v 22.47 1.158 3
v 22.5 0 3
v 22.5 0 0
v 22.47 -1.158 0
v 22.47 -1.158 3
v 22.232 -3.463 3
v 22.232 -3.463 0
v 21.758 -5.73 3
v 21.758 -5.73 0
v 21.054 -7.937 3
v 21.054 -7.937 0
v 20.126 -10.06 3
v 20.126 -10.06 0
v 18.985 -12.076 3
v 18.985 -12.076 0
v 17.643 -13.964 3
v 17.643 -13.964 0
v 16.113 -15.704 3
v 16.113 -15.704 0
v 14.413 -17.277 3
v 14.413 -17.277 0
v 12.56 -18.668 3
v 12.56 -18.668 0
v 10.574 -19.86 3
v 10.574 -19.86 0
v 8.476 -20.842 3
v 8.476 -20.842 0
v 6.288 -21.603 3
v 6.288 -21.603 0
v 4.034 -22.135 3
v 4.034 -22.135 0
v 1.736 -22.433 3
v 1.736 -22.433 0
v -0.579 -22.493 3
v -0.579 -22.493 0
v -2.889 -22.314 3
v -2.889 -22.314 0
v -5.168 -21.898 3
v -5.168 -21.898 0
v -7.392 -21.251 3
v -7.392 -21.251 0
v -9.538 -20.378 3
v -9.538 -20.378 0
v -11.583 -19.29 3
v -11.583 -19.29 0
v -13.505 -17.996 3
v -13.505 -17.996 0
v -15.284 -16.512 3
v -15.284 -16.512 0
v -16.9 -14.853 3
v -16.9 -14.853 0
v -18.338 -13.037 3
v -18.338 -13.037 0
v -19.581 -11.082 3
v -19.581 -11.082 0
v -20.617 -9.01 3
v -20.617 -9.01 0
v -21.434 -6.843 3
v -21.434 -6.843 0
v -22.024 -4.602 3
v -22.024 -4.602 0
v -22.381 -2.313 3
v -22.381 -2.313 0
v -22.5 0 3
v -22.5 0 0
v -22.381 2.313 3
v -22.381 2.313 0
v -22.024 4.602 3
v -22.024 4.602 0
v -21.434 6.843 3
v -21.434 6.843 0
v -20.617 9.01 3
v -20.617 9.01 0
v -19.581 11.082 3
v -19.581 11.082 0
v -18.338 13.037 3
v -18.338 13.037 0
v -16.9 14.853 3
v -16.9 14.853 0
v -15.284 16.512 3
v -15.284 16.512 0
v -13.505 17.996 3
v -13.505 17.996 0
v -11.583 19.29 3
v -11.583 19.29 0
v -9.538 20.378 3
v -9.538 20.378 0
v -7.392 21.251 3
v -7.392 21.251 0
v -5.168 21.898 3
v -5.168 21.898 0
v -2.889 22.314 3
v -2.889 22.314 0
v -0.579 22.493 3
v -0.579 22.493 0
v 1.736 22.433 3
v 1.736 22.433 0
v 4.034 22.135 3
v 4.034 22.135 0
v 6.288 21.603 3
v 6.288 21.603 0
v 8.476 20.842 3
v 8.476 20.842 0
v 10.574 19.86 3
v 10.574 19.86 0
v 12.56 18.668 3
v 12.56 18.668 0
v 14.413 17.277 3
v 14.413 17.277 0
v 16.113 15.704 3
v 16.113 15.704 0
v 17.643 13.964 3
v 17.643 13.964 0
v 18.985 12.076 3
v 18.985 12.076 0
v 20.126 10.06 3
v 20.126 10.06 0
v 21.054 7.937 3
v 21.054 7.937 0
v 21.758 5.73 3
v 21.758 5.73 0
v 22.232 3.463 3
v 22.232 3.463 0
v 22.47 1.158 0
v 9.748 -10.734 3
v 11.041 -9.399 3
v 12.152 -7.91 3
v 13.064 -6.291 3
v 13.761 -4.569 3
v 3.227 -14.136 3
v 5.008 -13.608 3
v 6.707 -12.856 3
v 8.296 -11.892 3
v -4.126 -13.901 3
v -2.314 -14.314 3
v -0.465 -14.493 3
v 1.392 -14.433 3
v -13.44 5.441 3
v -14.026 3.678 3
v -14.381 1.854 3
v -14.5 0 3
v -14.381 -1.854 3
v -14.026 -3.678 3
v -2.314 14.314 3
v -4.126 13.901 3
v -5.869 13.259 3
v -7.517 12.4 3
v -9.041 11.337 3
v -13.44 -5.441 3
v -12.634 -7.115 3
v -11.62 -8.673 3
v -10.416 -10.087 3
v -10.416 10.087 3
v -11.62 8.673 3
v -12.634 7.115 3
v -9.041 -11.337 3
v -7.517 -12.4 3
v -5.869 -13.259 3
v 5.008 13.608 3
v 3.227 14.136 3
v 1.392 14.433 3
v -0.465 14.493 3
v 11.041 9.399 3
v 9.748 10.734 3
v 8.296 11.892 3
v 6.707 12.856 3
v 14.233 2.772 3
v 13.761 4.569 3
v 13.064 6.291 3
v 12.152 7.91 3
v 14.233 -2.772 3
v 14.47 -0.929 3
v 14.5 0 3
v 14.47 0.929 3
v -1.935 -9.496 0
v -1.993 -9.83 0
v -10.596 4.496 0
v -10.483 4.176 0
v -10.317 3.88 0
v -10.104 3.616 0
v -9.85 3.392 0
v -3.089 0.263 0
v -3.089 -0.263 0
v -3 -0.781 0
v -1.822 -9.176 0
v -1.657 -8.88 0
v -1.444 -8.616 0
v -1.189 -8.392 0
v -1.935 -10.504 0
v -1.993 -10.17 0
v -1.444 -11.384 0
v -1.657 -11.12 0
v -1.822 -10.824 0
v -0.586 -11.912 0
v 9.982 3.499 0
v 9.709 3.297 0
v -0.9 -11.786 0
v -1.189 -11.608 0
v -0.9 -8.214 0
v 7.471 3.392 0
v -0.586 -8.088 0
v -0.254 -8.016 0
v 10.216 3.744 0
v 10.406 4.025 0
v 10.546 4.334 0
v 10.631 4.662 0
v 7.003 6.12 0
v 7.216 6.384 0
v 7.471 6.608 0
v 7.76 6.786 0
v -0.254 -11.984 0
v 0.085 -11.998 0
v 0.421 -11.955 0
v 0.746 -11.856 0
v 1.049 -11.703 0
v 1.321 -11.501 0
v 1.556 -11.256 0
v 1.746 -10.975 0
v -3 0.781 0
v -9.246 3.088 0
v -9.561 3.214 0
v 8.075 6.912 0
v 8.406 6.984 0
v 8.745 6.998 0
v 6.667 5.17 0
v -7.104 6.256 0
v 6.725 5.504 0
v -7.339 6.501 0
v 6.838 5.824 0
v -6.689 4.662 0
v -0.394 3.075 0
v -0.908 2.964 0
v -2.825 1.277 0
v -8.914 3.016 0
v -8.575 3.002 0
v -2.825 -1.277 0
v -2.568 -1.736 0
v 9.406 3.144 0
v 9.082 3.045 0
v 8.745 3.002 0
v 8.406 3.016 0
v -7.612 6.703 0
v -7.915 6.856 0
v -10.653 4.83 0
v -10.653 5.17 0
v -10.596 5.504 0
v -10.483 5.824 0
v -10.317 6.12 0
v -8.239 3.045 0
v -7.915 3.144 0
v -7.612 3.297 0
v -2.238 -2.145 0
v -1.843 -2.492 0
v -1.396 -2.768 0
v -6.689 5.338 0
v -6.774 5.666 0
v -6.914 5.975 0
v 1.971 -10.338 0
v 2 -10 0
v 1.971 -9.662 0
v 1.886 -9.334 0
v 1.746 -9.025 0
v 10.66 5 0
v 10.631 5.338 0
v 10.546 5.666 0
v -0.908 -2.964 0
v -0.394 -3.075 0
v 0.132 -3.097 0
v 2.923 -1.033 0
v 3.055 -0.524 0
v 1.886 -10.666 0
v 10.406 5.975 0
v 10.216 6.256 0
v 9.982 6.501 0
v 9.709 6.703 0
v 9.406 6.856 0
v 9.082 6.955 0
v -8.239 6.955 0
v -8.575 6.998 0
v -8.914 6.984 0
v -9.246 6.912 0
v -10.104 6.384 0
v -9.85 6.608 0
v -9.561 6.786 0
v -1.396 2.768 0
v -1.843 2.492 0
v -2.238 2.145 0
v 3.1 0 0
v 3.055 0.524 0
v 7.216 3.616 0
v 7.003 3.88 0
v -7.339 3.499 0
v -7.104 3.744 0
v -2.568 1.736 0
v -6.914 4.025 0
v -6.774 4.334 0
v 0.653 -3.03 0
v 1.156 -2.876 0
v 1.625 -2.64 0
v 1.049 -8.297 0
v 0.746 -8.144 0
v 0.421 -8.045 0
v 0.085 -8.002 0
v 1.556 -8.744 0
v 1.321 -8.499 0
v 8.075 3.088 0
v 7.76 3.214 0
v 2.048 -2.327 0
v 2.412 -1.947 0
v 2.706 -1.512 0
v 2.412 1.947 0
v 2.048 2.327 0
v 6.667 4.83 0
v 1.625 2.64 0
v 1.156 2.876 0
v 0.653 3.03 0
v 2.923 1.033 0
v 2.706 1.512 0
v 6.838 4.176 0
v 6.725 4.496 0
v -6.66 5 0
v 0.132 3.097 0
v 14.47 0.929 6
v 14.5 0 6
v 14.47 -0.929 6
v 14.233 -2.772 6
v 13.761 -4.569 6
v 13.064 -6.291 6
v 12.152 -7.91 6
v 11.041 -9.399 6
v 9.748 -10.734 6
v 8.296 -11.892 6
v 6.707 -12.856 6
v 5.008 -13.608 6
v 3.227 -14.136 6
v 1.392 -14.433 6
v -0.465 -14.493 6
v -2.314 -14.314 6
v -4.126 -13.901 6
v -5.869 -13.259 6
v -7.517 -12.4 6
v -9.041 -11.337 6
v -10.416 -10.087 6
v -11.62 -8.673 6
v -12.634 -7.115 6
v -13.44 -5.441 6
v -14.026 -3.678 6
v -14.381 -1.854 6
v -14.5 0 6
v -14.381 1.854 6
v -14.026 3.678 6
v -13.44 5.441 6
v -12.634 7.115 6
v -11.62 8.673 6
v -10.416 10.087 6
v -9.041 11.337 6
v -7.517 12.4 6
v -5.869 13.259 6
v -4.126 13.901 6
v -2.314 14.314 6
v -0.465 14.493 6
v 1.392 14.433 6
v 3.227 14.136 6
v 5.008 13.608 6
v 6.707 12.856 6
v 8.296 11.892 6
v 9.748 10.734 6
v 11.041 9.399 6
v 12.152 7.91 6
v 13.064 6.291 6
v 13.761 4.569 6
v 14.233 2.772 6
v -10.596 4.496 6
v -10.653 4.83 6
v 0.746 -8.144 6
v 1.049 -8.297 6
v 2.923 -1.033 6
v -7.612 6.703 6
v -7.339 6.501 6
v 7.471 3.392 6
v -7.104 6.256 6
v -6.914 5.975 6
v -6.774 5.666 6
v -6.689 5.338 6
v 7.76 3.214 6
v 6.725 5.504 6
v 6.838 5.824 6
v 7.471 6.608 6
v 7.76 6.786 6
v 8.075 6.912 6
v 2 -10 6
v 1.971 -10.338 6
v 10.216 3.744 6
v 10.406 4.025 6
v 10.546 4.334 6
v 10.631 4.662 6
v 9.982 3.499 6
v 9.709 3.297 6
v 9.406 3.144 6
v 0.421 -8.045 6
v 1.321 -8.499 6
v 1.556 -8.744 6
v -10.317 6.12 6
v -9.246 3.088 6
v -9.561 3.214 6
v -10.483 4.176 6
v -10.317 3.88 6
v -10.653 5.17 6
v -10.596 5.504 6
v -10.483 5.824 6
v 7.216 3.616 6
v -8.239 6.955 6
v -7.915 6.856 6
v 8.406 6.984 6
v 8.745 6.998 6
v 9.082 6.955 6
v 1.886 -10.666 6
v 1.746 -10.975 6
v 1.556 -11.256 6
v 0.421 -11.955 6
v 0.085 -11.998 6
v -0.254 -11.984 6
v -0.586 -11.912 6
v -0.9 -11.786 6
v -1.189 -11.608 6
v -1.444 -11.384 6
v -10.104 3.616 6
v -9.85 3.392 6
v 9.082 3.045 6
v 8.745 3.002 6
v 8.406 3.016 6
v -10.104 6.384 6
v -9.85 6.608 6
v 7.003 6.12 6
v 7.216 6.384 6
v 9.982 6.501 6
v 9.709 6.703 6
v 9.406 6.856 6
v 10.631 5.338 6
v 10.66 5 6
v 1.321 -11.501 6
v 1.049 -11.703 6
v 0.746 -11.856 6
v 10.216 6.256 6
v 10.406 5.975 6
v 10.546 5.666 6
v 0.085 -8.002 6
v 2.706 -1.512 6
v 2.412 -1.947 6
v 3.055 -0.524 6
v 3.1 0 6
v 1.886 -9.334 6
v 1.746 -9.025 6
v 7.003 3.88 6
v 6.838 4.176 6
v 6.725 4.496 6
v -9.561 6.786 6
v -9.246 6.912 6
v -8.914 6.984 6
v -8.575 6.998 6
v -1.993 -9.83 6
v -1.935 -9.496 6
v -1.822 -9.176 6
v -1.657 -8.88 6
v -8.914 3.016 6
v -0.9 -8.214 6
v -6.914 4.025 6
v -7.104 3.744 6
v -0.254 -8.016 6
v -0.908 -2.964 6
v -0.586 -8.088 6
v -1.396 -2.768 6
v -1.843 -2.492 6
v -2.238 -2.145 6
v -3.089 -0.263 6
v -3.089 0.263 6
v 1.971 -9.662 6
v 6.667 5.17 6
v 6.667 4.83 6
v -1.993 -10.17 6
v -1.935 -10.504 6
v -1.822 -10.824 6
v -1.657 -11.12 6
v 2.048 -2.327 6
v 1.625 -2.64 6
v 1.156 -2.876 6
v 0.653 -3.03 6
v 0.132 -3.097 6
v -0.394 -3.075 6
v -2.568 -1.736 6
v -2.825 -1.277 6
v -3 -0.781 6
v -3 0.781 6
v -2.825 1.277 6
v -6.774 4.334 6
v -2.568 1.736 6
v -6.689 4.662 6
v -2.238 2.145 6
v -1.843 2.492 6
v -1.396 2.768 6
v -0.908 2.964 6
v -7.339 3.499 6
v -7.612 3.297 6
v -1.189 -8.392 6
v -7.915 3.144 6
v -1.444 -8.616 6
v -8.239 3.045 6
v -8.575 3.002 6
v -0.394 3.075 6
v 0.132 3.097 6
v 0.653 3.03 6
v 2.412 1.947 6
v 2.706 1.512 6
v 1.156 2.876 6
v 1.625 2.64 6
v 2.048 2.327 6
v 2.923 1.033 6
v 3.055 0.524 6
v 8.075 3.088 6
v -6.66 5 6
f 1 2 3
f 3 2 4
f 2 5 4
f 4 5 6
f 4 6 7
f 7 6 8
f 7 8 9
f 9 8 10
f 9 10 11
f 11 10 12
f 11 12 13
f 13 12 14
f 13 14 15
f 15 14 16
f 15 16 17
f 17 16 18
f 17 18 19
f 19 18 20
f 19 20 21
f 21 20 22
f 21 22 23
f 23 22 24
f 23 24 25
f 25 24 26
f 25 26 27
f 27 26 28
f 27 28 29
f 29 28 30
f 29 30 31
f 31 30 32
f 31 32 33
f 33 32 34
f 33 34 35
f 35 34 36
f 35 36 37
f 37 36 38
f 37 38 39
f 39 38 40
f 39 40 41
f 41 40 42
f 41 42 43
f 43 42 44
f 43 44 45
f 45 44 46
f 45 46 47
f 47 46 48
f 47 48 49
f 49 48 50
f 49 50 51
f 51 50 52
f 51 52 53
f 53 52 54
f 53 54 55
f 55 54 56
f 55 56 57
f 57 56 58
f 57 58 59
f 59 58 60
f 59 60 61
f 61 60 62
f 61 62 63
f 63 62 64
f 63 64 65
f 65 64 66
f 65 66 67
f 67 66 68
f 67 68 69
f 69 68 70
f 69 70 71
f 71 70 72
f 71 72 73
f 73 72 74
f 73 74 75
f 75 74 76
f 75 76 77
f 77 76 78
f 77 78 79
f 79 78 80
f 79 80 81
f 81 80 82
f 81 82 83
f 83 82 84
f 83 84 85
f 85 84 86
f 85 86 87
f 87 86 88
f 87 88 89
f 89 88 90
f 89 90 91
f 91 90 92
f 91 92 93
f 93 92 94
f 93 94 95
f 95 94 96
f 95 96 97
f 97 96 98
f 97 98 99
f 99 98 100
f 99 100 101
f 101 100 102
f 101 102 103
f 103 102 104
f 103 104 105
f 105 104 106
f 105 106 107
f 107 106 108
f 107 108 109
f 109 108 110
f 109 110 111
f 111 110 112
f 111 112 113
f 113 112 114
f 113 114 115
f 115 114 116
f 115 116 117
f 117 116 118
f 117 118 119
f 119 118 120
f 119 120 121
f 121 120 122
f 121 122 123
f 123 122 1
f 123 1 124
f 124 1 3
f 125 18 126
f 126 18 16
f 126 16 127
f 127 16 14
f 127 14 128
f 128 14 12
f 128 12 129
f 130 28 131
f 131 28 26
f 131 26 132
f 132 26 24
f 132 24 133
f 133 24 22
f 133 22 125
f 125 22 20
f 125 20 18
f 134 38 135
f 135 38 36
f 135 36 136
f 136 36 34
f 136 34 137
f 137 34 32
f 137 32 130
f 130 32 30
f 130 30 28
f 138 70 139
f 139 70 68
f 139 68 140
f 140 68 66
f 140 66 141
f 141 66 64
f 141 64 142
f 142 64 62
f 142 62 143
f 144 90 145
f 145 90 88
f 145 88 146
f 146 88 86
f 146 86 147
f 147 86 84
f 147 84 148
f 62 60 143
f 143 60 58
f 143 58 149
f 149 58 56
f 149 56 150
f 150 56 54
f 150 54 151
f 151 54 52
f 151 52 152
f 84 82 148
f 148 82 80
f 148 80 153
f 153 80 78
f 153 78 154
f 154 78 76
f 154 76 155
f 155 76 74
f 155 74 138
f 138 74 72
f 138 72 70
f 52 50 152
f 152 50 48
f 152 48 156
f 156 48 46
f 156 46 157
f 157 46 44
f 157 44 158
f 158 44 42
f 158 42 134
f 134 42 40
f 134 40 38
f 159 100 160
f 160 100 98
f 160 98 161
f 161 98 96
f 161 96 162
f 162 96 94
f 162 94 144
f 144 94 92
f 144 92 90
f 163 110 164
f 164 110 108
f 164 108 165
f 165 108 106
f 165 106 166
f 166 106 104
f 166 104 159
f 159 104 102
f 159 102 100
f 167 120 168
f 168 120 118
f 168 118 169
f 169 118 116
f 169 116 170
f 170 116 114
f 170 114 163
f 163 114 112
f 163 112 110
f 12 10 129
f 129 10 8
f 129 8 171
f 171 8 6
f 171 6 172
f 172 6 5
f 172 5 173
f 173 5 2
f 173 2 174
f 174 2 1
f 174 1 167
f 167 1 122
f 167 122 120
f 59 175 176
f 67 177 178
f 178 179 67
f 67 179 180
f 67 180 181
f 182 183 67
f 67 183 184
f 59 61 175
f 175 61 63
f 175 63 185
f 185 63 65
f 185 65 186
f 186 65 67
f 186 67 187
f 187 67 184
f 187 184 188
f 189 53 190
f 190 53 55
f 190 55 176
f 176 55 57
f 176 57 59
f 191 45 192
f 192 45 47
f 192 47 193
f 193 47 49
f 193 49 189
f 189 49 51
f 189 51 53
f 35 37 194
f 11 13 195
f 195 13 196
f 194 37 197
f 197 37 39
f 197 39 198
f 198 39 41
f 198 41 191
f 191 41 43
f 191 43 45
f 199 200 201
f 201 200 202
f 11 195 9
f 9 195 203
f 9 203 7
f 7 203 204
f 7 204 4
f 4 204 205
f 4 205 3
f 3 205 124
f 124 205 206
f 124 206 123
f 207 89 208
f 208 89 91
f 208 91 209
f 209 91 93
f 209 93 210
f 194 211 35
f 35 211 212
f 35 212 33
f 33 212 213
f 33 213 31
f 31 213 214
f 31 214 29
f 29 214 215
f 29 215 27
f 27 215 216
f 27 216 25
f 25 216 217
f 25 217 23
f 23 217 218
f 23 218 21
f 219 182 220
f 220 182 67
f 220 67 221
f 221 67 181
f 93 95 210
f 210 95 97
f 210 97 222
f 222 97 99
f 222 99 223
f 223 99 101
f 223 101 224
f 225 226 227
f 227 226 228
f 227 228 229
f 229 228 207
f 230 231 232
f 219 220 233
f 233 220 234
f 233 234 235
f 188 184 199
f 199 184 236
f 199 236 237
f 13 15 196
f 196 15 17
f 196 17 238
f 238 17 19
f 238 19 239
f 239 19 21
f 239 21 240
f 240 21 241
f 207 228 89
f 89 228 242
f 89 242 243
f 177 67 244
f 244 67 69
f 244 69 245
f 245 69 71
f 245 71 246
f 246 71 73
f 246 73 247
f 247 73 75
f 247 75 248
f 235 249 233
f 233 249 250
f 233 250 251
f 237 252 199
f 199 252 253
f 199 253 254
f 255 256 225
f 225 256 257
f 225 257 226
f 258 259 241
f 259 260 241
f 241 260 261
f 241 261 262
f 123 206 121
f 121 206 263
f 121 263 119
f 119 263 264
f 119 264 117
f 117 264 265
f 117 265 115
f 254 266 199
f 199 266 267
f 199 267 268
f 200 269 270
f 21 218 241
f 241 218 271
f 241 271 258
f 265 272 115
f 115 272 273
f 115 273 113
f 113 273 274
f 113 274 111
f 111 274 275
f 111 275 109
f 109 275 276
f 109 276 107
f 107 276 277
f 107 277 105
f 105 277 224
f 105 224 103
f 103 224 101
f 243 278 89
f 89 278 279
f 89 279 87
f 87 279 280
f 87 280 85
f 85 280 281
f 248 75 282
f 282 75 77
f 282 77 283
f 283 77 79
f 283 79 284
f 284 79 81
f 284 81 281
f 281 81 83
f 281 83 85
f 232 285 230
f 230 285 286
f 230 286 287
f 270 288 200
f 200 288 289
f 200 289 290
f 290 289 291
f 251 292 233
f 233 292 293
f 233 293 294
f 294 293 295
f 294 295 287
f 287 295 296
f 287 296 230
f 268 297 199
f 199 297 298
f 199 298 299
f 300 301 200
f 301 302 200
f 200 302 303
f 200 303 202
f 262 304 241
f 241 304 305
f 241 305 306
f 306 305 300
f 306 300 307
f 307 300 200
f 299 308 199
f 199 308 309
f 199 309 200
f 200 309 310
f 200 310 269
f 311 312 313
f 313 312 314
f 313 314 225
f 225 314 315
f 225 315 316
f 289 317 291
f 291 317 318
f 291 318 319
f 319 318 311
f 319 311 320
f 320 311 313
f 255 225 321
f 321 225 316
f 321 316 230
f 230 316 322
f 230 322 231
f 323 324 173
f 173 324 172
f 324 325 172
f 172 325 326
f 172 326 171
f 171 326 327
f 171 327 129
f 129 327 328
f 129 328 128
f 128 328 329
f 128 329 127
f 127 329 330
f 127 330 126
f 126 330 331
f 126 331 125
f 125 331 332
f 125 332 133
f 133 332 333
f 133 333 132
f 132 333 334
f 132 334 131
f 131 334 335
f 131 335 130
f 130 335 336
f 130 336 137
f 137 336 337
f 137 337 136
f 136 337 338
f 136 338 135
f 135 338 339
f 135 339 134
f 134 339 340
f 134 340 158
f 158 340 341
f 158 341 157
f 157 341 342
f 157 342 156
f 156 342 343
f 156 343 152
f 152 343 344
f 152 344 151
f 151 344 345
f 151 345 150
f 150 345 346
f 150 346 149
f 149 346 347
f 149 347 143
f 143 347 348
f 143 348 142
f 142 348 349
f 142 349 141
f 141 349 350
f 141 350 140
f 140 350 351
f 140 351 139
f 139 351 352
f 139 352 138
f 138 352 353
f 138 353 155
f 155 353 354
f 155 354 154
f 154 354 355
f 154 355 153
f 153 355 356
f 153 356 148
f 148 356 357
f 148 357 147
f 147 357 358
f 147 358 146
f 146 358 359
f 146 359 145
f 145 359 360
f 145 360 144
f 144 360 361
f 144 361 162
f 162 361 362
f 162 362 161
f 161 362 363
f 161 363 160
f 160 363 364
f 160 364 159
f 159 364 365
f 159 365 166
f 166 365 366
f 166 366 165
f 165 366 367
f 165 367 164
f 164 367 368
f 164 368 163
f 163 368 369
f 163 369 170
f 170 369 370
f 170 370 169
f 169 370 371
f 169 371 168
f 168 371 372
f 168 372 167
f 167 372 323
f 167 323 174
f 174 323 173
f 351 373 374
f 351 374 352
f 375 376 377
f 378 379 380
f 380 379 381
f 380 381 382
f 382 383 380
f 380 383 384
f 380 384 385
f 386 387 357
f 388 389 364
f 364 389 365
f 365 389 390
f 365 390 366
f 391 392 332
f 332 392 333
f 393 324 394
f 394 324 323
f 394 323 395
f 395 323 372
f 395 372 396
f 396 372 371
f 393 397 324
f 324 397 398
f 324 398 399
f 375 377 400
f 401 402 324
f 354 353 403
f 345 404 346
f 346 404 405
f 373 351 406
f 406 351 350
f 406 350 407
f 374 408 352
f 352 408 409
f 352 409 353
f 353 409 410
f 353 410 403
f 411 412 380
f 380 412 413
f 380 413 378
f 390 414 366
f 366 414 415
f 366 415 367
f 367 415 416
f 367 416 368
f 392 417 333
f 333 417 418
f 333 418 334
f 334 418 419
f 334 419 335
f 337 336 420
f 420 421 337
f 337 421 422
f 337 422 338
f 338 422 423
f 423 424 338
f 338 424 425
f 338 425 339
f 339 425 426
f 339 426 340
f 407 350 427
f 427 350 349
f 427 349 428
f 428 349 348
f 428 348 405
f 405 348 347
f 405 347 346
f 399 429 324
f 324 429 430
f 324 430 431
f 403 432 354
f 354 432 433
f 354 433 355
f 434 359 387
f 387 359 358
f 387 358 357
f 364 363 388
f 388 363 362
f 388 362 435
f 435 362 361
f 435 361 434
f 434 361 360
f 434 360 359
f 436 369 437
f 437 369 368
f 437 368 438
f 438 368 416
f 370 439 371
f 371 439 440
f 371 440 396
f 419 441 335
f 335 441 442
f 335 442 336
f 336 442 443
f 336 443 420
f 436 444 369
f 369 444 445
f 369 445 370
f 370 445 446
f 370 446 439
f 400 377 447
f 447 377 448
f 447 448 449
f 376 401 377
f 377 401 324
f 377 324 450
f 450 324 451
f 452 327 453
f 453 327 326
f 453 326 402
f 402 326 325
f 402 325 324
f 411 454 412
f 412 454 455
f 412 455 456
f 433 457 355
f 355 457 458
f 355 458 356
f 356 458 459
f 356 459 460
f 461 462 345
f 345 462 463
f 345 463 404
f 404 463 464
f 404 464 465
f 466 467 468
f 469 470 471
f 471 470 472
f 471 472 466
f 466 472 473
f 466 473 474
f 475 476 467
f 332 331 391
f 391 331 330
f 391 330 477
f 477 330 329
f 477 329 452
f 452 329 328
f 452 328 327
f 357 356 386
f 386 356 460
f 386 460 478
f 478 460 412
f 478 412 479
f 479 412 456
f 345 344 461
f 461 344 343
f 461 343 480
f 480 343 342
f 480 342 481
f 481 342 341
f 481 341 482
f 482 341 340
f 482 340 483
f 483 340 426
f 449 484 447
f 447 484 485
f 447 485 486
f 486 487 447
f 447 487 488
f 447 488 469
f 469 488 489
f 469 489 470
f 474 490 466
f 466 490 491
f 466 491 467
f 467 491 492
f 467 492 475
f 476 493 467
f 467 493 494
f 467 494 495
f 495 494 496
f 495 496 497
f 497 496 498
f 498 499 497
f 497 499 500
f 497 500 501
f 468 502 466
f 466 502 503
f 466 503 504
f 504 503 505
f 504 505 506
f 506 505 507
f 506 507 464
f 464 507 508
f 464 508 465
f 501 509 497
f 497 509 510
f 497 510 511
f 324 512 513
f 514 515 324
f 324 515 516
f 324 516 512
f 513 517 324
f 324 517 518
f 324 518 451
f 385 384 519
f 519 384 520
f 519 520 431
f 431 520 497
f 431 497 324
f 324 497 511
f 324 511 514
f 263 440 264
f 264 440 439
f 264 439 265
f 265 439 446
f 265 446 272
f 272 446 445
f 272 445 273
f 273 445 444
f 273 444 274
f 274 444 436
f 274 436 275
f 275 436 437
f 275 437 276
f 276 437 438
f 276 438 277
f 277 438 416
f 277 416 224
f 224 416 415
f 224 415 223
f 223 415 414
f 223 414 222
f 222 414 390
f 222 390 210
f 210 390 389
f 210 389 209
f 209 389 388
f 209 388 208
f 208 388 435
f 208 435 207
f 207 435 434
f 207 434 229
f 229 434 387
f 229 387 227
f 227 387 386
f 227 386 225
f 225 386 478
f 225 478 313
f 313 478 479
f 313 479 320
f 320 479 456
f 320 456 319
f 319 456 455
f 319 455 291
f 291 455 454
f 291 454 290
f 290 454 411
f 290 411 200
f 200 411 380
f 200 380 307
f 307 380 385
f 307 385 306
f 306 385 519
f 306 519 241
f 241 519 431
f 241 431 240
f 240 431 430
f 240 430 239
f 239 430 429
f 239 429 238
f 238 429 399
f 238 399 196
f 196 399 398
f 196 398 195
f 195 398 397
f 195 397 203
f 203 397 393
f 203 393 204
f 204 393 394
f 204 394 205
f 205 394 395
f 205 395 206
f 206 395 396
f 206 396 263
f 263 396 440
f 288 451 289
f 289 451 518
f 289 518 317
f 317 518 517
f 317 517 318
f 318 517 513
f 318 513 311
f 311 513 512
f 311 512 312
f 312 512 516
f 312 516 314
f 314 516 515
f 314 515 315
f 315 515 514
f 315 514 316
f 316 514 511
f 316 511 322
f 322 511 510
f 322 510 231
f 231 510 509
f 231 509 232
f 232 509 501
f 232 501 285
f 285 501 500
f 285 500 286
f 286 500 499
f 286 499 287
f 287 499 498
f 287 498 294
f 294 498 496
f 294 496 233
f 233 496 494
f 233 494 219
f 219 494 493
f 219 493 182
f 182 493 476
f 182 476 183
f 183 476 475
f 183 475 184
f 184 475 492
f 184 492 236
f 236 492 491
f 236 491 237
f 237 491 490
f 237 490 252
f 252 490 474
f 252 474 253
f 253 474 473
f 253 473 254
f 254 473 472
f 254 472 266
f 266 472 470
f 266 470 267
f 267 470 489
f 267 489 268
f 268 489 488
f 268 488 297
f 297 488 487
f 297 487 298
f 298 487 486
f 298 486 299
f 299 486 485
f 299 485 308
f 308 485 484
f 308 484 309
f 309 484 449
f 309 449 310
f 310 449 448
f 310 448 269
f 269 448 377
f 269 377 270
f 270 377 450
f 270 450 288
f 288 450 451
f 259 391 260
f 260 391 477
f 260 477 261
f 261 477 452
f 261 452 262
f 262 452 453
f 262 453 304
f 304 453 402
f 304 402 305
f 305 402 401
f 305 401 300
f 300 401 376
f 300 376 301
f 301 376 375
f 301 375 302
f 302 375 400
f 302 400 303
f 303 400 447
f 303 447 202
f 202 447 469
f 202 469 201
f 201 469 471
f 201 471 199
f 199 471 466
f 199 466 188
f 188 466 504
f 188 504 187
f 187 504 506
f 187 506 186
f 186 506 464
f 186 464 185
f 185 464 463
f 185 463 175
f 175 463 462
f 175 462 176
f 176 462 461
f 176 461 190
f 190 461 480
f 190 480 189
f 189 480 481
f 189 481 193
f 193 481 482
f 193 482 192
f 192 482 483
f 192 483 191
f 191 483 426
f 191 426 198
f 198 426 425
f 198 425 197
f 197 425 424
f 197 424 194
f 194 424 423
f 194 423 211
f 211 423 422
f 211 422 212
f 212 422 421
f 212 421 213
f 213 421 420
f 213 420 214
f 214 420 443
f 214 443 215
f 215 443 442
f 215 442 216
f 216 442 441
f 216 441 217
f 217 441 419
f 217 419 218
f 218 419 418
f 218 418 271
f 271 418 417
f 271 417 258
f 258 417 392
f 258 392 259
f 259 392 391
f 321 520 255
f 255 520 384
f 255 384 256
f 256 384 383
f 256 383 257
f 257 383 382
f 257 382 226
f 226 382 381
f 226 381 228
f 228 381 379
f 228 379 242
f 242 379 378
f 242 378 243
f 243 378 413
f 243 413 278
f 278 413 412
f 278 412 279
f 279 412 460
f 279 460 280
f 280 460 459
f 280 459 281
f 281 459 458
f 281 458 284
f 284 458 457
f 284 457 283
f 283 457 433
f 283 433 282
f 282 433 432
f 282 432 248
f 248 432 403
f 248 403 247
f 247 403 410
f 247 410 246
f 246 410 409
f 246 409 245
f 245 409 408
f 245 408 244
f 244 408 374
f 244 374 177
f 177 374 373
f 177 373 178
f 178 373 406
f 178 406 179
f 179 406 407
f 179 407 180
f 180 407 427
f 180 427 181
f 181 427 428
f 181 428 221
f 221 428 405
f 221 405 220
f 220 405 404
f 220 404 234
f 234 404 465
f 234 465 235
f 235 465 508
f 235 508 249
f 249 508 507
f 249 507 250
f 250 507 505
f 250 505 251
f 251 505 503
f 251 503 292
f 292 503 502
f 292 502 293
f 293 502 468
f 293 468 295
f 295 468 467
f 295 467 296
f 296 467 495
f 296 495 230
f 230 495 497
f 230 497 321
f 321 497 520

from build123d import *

# Parameters (mm, degrees)
ESQUISSE1_R             = 22.5
BOSS_EXTRU_1_DEPTH      = 3
ESQUISSE2_R             = 14.5
BOSS_EXTRU_2_DEPTH      = 3
ESQUISSE3_R             = 2
ESQUISSE3_R_2           = 3.1
ENL_V_MAT_EXTRU_1_DEPTH = 33.380549717


with BuildPart() as part:
    # Esquisse1 → Boss.-Extru.1 (new body)
    with BuildSketch(Plane.XY):
        Circle(ESQUISSE1_R)
    extrude(amount=BOSS_EXTRU_1_DEPTH)

    # Esquisse2 → Boss.-Extru.2 (add)
    with BuildSketch(Plane.XY.offset(3)):
        Circle(ESQUISSE2_R)
    extrude(amount=BOSS_EXTRU_2_DEPTH)

    # Esquisse3 → Enlèv. mat.-Extru.1 (cut, through all)
    with BuildSketch(Plane.XY.offset(6)):
        with Locations((8.660254038, 5)):
            Circle(ESQUISSE3_R)
        with Locations((-8.660254038, 5)):
            Circle(ESQUISSE3_R)
        with Locations((0, -10)):
            Circle(ESQUISSE3_R)
        Circle(ESQUISSE3_R_2)
    extrude(amount=-ENL_V_MAT_EXTRU_1_DEPTH, mode=Mode.SUBTRACT)


solid = part.part
